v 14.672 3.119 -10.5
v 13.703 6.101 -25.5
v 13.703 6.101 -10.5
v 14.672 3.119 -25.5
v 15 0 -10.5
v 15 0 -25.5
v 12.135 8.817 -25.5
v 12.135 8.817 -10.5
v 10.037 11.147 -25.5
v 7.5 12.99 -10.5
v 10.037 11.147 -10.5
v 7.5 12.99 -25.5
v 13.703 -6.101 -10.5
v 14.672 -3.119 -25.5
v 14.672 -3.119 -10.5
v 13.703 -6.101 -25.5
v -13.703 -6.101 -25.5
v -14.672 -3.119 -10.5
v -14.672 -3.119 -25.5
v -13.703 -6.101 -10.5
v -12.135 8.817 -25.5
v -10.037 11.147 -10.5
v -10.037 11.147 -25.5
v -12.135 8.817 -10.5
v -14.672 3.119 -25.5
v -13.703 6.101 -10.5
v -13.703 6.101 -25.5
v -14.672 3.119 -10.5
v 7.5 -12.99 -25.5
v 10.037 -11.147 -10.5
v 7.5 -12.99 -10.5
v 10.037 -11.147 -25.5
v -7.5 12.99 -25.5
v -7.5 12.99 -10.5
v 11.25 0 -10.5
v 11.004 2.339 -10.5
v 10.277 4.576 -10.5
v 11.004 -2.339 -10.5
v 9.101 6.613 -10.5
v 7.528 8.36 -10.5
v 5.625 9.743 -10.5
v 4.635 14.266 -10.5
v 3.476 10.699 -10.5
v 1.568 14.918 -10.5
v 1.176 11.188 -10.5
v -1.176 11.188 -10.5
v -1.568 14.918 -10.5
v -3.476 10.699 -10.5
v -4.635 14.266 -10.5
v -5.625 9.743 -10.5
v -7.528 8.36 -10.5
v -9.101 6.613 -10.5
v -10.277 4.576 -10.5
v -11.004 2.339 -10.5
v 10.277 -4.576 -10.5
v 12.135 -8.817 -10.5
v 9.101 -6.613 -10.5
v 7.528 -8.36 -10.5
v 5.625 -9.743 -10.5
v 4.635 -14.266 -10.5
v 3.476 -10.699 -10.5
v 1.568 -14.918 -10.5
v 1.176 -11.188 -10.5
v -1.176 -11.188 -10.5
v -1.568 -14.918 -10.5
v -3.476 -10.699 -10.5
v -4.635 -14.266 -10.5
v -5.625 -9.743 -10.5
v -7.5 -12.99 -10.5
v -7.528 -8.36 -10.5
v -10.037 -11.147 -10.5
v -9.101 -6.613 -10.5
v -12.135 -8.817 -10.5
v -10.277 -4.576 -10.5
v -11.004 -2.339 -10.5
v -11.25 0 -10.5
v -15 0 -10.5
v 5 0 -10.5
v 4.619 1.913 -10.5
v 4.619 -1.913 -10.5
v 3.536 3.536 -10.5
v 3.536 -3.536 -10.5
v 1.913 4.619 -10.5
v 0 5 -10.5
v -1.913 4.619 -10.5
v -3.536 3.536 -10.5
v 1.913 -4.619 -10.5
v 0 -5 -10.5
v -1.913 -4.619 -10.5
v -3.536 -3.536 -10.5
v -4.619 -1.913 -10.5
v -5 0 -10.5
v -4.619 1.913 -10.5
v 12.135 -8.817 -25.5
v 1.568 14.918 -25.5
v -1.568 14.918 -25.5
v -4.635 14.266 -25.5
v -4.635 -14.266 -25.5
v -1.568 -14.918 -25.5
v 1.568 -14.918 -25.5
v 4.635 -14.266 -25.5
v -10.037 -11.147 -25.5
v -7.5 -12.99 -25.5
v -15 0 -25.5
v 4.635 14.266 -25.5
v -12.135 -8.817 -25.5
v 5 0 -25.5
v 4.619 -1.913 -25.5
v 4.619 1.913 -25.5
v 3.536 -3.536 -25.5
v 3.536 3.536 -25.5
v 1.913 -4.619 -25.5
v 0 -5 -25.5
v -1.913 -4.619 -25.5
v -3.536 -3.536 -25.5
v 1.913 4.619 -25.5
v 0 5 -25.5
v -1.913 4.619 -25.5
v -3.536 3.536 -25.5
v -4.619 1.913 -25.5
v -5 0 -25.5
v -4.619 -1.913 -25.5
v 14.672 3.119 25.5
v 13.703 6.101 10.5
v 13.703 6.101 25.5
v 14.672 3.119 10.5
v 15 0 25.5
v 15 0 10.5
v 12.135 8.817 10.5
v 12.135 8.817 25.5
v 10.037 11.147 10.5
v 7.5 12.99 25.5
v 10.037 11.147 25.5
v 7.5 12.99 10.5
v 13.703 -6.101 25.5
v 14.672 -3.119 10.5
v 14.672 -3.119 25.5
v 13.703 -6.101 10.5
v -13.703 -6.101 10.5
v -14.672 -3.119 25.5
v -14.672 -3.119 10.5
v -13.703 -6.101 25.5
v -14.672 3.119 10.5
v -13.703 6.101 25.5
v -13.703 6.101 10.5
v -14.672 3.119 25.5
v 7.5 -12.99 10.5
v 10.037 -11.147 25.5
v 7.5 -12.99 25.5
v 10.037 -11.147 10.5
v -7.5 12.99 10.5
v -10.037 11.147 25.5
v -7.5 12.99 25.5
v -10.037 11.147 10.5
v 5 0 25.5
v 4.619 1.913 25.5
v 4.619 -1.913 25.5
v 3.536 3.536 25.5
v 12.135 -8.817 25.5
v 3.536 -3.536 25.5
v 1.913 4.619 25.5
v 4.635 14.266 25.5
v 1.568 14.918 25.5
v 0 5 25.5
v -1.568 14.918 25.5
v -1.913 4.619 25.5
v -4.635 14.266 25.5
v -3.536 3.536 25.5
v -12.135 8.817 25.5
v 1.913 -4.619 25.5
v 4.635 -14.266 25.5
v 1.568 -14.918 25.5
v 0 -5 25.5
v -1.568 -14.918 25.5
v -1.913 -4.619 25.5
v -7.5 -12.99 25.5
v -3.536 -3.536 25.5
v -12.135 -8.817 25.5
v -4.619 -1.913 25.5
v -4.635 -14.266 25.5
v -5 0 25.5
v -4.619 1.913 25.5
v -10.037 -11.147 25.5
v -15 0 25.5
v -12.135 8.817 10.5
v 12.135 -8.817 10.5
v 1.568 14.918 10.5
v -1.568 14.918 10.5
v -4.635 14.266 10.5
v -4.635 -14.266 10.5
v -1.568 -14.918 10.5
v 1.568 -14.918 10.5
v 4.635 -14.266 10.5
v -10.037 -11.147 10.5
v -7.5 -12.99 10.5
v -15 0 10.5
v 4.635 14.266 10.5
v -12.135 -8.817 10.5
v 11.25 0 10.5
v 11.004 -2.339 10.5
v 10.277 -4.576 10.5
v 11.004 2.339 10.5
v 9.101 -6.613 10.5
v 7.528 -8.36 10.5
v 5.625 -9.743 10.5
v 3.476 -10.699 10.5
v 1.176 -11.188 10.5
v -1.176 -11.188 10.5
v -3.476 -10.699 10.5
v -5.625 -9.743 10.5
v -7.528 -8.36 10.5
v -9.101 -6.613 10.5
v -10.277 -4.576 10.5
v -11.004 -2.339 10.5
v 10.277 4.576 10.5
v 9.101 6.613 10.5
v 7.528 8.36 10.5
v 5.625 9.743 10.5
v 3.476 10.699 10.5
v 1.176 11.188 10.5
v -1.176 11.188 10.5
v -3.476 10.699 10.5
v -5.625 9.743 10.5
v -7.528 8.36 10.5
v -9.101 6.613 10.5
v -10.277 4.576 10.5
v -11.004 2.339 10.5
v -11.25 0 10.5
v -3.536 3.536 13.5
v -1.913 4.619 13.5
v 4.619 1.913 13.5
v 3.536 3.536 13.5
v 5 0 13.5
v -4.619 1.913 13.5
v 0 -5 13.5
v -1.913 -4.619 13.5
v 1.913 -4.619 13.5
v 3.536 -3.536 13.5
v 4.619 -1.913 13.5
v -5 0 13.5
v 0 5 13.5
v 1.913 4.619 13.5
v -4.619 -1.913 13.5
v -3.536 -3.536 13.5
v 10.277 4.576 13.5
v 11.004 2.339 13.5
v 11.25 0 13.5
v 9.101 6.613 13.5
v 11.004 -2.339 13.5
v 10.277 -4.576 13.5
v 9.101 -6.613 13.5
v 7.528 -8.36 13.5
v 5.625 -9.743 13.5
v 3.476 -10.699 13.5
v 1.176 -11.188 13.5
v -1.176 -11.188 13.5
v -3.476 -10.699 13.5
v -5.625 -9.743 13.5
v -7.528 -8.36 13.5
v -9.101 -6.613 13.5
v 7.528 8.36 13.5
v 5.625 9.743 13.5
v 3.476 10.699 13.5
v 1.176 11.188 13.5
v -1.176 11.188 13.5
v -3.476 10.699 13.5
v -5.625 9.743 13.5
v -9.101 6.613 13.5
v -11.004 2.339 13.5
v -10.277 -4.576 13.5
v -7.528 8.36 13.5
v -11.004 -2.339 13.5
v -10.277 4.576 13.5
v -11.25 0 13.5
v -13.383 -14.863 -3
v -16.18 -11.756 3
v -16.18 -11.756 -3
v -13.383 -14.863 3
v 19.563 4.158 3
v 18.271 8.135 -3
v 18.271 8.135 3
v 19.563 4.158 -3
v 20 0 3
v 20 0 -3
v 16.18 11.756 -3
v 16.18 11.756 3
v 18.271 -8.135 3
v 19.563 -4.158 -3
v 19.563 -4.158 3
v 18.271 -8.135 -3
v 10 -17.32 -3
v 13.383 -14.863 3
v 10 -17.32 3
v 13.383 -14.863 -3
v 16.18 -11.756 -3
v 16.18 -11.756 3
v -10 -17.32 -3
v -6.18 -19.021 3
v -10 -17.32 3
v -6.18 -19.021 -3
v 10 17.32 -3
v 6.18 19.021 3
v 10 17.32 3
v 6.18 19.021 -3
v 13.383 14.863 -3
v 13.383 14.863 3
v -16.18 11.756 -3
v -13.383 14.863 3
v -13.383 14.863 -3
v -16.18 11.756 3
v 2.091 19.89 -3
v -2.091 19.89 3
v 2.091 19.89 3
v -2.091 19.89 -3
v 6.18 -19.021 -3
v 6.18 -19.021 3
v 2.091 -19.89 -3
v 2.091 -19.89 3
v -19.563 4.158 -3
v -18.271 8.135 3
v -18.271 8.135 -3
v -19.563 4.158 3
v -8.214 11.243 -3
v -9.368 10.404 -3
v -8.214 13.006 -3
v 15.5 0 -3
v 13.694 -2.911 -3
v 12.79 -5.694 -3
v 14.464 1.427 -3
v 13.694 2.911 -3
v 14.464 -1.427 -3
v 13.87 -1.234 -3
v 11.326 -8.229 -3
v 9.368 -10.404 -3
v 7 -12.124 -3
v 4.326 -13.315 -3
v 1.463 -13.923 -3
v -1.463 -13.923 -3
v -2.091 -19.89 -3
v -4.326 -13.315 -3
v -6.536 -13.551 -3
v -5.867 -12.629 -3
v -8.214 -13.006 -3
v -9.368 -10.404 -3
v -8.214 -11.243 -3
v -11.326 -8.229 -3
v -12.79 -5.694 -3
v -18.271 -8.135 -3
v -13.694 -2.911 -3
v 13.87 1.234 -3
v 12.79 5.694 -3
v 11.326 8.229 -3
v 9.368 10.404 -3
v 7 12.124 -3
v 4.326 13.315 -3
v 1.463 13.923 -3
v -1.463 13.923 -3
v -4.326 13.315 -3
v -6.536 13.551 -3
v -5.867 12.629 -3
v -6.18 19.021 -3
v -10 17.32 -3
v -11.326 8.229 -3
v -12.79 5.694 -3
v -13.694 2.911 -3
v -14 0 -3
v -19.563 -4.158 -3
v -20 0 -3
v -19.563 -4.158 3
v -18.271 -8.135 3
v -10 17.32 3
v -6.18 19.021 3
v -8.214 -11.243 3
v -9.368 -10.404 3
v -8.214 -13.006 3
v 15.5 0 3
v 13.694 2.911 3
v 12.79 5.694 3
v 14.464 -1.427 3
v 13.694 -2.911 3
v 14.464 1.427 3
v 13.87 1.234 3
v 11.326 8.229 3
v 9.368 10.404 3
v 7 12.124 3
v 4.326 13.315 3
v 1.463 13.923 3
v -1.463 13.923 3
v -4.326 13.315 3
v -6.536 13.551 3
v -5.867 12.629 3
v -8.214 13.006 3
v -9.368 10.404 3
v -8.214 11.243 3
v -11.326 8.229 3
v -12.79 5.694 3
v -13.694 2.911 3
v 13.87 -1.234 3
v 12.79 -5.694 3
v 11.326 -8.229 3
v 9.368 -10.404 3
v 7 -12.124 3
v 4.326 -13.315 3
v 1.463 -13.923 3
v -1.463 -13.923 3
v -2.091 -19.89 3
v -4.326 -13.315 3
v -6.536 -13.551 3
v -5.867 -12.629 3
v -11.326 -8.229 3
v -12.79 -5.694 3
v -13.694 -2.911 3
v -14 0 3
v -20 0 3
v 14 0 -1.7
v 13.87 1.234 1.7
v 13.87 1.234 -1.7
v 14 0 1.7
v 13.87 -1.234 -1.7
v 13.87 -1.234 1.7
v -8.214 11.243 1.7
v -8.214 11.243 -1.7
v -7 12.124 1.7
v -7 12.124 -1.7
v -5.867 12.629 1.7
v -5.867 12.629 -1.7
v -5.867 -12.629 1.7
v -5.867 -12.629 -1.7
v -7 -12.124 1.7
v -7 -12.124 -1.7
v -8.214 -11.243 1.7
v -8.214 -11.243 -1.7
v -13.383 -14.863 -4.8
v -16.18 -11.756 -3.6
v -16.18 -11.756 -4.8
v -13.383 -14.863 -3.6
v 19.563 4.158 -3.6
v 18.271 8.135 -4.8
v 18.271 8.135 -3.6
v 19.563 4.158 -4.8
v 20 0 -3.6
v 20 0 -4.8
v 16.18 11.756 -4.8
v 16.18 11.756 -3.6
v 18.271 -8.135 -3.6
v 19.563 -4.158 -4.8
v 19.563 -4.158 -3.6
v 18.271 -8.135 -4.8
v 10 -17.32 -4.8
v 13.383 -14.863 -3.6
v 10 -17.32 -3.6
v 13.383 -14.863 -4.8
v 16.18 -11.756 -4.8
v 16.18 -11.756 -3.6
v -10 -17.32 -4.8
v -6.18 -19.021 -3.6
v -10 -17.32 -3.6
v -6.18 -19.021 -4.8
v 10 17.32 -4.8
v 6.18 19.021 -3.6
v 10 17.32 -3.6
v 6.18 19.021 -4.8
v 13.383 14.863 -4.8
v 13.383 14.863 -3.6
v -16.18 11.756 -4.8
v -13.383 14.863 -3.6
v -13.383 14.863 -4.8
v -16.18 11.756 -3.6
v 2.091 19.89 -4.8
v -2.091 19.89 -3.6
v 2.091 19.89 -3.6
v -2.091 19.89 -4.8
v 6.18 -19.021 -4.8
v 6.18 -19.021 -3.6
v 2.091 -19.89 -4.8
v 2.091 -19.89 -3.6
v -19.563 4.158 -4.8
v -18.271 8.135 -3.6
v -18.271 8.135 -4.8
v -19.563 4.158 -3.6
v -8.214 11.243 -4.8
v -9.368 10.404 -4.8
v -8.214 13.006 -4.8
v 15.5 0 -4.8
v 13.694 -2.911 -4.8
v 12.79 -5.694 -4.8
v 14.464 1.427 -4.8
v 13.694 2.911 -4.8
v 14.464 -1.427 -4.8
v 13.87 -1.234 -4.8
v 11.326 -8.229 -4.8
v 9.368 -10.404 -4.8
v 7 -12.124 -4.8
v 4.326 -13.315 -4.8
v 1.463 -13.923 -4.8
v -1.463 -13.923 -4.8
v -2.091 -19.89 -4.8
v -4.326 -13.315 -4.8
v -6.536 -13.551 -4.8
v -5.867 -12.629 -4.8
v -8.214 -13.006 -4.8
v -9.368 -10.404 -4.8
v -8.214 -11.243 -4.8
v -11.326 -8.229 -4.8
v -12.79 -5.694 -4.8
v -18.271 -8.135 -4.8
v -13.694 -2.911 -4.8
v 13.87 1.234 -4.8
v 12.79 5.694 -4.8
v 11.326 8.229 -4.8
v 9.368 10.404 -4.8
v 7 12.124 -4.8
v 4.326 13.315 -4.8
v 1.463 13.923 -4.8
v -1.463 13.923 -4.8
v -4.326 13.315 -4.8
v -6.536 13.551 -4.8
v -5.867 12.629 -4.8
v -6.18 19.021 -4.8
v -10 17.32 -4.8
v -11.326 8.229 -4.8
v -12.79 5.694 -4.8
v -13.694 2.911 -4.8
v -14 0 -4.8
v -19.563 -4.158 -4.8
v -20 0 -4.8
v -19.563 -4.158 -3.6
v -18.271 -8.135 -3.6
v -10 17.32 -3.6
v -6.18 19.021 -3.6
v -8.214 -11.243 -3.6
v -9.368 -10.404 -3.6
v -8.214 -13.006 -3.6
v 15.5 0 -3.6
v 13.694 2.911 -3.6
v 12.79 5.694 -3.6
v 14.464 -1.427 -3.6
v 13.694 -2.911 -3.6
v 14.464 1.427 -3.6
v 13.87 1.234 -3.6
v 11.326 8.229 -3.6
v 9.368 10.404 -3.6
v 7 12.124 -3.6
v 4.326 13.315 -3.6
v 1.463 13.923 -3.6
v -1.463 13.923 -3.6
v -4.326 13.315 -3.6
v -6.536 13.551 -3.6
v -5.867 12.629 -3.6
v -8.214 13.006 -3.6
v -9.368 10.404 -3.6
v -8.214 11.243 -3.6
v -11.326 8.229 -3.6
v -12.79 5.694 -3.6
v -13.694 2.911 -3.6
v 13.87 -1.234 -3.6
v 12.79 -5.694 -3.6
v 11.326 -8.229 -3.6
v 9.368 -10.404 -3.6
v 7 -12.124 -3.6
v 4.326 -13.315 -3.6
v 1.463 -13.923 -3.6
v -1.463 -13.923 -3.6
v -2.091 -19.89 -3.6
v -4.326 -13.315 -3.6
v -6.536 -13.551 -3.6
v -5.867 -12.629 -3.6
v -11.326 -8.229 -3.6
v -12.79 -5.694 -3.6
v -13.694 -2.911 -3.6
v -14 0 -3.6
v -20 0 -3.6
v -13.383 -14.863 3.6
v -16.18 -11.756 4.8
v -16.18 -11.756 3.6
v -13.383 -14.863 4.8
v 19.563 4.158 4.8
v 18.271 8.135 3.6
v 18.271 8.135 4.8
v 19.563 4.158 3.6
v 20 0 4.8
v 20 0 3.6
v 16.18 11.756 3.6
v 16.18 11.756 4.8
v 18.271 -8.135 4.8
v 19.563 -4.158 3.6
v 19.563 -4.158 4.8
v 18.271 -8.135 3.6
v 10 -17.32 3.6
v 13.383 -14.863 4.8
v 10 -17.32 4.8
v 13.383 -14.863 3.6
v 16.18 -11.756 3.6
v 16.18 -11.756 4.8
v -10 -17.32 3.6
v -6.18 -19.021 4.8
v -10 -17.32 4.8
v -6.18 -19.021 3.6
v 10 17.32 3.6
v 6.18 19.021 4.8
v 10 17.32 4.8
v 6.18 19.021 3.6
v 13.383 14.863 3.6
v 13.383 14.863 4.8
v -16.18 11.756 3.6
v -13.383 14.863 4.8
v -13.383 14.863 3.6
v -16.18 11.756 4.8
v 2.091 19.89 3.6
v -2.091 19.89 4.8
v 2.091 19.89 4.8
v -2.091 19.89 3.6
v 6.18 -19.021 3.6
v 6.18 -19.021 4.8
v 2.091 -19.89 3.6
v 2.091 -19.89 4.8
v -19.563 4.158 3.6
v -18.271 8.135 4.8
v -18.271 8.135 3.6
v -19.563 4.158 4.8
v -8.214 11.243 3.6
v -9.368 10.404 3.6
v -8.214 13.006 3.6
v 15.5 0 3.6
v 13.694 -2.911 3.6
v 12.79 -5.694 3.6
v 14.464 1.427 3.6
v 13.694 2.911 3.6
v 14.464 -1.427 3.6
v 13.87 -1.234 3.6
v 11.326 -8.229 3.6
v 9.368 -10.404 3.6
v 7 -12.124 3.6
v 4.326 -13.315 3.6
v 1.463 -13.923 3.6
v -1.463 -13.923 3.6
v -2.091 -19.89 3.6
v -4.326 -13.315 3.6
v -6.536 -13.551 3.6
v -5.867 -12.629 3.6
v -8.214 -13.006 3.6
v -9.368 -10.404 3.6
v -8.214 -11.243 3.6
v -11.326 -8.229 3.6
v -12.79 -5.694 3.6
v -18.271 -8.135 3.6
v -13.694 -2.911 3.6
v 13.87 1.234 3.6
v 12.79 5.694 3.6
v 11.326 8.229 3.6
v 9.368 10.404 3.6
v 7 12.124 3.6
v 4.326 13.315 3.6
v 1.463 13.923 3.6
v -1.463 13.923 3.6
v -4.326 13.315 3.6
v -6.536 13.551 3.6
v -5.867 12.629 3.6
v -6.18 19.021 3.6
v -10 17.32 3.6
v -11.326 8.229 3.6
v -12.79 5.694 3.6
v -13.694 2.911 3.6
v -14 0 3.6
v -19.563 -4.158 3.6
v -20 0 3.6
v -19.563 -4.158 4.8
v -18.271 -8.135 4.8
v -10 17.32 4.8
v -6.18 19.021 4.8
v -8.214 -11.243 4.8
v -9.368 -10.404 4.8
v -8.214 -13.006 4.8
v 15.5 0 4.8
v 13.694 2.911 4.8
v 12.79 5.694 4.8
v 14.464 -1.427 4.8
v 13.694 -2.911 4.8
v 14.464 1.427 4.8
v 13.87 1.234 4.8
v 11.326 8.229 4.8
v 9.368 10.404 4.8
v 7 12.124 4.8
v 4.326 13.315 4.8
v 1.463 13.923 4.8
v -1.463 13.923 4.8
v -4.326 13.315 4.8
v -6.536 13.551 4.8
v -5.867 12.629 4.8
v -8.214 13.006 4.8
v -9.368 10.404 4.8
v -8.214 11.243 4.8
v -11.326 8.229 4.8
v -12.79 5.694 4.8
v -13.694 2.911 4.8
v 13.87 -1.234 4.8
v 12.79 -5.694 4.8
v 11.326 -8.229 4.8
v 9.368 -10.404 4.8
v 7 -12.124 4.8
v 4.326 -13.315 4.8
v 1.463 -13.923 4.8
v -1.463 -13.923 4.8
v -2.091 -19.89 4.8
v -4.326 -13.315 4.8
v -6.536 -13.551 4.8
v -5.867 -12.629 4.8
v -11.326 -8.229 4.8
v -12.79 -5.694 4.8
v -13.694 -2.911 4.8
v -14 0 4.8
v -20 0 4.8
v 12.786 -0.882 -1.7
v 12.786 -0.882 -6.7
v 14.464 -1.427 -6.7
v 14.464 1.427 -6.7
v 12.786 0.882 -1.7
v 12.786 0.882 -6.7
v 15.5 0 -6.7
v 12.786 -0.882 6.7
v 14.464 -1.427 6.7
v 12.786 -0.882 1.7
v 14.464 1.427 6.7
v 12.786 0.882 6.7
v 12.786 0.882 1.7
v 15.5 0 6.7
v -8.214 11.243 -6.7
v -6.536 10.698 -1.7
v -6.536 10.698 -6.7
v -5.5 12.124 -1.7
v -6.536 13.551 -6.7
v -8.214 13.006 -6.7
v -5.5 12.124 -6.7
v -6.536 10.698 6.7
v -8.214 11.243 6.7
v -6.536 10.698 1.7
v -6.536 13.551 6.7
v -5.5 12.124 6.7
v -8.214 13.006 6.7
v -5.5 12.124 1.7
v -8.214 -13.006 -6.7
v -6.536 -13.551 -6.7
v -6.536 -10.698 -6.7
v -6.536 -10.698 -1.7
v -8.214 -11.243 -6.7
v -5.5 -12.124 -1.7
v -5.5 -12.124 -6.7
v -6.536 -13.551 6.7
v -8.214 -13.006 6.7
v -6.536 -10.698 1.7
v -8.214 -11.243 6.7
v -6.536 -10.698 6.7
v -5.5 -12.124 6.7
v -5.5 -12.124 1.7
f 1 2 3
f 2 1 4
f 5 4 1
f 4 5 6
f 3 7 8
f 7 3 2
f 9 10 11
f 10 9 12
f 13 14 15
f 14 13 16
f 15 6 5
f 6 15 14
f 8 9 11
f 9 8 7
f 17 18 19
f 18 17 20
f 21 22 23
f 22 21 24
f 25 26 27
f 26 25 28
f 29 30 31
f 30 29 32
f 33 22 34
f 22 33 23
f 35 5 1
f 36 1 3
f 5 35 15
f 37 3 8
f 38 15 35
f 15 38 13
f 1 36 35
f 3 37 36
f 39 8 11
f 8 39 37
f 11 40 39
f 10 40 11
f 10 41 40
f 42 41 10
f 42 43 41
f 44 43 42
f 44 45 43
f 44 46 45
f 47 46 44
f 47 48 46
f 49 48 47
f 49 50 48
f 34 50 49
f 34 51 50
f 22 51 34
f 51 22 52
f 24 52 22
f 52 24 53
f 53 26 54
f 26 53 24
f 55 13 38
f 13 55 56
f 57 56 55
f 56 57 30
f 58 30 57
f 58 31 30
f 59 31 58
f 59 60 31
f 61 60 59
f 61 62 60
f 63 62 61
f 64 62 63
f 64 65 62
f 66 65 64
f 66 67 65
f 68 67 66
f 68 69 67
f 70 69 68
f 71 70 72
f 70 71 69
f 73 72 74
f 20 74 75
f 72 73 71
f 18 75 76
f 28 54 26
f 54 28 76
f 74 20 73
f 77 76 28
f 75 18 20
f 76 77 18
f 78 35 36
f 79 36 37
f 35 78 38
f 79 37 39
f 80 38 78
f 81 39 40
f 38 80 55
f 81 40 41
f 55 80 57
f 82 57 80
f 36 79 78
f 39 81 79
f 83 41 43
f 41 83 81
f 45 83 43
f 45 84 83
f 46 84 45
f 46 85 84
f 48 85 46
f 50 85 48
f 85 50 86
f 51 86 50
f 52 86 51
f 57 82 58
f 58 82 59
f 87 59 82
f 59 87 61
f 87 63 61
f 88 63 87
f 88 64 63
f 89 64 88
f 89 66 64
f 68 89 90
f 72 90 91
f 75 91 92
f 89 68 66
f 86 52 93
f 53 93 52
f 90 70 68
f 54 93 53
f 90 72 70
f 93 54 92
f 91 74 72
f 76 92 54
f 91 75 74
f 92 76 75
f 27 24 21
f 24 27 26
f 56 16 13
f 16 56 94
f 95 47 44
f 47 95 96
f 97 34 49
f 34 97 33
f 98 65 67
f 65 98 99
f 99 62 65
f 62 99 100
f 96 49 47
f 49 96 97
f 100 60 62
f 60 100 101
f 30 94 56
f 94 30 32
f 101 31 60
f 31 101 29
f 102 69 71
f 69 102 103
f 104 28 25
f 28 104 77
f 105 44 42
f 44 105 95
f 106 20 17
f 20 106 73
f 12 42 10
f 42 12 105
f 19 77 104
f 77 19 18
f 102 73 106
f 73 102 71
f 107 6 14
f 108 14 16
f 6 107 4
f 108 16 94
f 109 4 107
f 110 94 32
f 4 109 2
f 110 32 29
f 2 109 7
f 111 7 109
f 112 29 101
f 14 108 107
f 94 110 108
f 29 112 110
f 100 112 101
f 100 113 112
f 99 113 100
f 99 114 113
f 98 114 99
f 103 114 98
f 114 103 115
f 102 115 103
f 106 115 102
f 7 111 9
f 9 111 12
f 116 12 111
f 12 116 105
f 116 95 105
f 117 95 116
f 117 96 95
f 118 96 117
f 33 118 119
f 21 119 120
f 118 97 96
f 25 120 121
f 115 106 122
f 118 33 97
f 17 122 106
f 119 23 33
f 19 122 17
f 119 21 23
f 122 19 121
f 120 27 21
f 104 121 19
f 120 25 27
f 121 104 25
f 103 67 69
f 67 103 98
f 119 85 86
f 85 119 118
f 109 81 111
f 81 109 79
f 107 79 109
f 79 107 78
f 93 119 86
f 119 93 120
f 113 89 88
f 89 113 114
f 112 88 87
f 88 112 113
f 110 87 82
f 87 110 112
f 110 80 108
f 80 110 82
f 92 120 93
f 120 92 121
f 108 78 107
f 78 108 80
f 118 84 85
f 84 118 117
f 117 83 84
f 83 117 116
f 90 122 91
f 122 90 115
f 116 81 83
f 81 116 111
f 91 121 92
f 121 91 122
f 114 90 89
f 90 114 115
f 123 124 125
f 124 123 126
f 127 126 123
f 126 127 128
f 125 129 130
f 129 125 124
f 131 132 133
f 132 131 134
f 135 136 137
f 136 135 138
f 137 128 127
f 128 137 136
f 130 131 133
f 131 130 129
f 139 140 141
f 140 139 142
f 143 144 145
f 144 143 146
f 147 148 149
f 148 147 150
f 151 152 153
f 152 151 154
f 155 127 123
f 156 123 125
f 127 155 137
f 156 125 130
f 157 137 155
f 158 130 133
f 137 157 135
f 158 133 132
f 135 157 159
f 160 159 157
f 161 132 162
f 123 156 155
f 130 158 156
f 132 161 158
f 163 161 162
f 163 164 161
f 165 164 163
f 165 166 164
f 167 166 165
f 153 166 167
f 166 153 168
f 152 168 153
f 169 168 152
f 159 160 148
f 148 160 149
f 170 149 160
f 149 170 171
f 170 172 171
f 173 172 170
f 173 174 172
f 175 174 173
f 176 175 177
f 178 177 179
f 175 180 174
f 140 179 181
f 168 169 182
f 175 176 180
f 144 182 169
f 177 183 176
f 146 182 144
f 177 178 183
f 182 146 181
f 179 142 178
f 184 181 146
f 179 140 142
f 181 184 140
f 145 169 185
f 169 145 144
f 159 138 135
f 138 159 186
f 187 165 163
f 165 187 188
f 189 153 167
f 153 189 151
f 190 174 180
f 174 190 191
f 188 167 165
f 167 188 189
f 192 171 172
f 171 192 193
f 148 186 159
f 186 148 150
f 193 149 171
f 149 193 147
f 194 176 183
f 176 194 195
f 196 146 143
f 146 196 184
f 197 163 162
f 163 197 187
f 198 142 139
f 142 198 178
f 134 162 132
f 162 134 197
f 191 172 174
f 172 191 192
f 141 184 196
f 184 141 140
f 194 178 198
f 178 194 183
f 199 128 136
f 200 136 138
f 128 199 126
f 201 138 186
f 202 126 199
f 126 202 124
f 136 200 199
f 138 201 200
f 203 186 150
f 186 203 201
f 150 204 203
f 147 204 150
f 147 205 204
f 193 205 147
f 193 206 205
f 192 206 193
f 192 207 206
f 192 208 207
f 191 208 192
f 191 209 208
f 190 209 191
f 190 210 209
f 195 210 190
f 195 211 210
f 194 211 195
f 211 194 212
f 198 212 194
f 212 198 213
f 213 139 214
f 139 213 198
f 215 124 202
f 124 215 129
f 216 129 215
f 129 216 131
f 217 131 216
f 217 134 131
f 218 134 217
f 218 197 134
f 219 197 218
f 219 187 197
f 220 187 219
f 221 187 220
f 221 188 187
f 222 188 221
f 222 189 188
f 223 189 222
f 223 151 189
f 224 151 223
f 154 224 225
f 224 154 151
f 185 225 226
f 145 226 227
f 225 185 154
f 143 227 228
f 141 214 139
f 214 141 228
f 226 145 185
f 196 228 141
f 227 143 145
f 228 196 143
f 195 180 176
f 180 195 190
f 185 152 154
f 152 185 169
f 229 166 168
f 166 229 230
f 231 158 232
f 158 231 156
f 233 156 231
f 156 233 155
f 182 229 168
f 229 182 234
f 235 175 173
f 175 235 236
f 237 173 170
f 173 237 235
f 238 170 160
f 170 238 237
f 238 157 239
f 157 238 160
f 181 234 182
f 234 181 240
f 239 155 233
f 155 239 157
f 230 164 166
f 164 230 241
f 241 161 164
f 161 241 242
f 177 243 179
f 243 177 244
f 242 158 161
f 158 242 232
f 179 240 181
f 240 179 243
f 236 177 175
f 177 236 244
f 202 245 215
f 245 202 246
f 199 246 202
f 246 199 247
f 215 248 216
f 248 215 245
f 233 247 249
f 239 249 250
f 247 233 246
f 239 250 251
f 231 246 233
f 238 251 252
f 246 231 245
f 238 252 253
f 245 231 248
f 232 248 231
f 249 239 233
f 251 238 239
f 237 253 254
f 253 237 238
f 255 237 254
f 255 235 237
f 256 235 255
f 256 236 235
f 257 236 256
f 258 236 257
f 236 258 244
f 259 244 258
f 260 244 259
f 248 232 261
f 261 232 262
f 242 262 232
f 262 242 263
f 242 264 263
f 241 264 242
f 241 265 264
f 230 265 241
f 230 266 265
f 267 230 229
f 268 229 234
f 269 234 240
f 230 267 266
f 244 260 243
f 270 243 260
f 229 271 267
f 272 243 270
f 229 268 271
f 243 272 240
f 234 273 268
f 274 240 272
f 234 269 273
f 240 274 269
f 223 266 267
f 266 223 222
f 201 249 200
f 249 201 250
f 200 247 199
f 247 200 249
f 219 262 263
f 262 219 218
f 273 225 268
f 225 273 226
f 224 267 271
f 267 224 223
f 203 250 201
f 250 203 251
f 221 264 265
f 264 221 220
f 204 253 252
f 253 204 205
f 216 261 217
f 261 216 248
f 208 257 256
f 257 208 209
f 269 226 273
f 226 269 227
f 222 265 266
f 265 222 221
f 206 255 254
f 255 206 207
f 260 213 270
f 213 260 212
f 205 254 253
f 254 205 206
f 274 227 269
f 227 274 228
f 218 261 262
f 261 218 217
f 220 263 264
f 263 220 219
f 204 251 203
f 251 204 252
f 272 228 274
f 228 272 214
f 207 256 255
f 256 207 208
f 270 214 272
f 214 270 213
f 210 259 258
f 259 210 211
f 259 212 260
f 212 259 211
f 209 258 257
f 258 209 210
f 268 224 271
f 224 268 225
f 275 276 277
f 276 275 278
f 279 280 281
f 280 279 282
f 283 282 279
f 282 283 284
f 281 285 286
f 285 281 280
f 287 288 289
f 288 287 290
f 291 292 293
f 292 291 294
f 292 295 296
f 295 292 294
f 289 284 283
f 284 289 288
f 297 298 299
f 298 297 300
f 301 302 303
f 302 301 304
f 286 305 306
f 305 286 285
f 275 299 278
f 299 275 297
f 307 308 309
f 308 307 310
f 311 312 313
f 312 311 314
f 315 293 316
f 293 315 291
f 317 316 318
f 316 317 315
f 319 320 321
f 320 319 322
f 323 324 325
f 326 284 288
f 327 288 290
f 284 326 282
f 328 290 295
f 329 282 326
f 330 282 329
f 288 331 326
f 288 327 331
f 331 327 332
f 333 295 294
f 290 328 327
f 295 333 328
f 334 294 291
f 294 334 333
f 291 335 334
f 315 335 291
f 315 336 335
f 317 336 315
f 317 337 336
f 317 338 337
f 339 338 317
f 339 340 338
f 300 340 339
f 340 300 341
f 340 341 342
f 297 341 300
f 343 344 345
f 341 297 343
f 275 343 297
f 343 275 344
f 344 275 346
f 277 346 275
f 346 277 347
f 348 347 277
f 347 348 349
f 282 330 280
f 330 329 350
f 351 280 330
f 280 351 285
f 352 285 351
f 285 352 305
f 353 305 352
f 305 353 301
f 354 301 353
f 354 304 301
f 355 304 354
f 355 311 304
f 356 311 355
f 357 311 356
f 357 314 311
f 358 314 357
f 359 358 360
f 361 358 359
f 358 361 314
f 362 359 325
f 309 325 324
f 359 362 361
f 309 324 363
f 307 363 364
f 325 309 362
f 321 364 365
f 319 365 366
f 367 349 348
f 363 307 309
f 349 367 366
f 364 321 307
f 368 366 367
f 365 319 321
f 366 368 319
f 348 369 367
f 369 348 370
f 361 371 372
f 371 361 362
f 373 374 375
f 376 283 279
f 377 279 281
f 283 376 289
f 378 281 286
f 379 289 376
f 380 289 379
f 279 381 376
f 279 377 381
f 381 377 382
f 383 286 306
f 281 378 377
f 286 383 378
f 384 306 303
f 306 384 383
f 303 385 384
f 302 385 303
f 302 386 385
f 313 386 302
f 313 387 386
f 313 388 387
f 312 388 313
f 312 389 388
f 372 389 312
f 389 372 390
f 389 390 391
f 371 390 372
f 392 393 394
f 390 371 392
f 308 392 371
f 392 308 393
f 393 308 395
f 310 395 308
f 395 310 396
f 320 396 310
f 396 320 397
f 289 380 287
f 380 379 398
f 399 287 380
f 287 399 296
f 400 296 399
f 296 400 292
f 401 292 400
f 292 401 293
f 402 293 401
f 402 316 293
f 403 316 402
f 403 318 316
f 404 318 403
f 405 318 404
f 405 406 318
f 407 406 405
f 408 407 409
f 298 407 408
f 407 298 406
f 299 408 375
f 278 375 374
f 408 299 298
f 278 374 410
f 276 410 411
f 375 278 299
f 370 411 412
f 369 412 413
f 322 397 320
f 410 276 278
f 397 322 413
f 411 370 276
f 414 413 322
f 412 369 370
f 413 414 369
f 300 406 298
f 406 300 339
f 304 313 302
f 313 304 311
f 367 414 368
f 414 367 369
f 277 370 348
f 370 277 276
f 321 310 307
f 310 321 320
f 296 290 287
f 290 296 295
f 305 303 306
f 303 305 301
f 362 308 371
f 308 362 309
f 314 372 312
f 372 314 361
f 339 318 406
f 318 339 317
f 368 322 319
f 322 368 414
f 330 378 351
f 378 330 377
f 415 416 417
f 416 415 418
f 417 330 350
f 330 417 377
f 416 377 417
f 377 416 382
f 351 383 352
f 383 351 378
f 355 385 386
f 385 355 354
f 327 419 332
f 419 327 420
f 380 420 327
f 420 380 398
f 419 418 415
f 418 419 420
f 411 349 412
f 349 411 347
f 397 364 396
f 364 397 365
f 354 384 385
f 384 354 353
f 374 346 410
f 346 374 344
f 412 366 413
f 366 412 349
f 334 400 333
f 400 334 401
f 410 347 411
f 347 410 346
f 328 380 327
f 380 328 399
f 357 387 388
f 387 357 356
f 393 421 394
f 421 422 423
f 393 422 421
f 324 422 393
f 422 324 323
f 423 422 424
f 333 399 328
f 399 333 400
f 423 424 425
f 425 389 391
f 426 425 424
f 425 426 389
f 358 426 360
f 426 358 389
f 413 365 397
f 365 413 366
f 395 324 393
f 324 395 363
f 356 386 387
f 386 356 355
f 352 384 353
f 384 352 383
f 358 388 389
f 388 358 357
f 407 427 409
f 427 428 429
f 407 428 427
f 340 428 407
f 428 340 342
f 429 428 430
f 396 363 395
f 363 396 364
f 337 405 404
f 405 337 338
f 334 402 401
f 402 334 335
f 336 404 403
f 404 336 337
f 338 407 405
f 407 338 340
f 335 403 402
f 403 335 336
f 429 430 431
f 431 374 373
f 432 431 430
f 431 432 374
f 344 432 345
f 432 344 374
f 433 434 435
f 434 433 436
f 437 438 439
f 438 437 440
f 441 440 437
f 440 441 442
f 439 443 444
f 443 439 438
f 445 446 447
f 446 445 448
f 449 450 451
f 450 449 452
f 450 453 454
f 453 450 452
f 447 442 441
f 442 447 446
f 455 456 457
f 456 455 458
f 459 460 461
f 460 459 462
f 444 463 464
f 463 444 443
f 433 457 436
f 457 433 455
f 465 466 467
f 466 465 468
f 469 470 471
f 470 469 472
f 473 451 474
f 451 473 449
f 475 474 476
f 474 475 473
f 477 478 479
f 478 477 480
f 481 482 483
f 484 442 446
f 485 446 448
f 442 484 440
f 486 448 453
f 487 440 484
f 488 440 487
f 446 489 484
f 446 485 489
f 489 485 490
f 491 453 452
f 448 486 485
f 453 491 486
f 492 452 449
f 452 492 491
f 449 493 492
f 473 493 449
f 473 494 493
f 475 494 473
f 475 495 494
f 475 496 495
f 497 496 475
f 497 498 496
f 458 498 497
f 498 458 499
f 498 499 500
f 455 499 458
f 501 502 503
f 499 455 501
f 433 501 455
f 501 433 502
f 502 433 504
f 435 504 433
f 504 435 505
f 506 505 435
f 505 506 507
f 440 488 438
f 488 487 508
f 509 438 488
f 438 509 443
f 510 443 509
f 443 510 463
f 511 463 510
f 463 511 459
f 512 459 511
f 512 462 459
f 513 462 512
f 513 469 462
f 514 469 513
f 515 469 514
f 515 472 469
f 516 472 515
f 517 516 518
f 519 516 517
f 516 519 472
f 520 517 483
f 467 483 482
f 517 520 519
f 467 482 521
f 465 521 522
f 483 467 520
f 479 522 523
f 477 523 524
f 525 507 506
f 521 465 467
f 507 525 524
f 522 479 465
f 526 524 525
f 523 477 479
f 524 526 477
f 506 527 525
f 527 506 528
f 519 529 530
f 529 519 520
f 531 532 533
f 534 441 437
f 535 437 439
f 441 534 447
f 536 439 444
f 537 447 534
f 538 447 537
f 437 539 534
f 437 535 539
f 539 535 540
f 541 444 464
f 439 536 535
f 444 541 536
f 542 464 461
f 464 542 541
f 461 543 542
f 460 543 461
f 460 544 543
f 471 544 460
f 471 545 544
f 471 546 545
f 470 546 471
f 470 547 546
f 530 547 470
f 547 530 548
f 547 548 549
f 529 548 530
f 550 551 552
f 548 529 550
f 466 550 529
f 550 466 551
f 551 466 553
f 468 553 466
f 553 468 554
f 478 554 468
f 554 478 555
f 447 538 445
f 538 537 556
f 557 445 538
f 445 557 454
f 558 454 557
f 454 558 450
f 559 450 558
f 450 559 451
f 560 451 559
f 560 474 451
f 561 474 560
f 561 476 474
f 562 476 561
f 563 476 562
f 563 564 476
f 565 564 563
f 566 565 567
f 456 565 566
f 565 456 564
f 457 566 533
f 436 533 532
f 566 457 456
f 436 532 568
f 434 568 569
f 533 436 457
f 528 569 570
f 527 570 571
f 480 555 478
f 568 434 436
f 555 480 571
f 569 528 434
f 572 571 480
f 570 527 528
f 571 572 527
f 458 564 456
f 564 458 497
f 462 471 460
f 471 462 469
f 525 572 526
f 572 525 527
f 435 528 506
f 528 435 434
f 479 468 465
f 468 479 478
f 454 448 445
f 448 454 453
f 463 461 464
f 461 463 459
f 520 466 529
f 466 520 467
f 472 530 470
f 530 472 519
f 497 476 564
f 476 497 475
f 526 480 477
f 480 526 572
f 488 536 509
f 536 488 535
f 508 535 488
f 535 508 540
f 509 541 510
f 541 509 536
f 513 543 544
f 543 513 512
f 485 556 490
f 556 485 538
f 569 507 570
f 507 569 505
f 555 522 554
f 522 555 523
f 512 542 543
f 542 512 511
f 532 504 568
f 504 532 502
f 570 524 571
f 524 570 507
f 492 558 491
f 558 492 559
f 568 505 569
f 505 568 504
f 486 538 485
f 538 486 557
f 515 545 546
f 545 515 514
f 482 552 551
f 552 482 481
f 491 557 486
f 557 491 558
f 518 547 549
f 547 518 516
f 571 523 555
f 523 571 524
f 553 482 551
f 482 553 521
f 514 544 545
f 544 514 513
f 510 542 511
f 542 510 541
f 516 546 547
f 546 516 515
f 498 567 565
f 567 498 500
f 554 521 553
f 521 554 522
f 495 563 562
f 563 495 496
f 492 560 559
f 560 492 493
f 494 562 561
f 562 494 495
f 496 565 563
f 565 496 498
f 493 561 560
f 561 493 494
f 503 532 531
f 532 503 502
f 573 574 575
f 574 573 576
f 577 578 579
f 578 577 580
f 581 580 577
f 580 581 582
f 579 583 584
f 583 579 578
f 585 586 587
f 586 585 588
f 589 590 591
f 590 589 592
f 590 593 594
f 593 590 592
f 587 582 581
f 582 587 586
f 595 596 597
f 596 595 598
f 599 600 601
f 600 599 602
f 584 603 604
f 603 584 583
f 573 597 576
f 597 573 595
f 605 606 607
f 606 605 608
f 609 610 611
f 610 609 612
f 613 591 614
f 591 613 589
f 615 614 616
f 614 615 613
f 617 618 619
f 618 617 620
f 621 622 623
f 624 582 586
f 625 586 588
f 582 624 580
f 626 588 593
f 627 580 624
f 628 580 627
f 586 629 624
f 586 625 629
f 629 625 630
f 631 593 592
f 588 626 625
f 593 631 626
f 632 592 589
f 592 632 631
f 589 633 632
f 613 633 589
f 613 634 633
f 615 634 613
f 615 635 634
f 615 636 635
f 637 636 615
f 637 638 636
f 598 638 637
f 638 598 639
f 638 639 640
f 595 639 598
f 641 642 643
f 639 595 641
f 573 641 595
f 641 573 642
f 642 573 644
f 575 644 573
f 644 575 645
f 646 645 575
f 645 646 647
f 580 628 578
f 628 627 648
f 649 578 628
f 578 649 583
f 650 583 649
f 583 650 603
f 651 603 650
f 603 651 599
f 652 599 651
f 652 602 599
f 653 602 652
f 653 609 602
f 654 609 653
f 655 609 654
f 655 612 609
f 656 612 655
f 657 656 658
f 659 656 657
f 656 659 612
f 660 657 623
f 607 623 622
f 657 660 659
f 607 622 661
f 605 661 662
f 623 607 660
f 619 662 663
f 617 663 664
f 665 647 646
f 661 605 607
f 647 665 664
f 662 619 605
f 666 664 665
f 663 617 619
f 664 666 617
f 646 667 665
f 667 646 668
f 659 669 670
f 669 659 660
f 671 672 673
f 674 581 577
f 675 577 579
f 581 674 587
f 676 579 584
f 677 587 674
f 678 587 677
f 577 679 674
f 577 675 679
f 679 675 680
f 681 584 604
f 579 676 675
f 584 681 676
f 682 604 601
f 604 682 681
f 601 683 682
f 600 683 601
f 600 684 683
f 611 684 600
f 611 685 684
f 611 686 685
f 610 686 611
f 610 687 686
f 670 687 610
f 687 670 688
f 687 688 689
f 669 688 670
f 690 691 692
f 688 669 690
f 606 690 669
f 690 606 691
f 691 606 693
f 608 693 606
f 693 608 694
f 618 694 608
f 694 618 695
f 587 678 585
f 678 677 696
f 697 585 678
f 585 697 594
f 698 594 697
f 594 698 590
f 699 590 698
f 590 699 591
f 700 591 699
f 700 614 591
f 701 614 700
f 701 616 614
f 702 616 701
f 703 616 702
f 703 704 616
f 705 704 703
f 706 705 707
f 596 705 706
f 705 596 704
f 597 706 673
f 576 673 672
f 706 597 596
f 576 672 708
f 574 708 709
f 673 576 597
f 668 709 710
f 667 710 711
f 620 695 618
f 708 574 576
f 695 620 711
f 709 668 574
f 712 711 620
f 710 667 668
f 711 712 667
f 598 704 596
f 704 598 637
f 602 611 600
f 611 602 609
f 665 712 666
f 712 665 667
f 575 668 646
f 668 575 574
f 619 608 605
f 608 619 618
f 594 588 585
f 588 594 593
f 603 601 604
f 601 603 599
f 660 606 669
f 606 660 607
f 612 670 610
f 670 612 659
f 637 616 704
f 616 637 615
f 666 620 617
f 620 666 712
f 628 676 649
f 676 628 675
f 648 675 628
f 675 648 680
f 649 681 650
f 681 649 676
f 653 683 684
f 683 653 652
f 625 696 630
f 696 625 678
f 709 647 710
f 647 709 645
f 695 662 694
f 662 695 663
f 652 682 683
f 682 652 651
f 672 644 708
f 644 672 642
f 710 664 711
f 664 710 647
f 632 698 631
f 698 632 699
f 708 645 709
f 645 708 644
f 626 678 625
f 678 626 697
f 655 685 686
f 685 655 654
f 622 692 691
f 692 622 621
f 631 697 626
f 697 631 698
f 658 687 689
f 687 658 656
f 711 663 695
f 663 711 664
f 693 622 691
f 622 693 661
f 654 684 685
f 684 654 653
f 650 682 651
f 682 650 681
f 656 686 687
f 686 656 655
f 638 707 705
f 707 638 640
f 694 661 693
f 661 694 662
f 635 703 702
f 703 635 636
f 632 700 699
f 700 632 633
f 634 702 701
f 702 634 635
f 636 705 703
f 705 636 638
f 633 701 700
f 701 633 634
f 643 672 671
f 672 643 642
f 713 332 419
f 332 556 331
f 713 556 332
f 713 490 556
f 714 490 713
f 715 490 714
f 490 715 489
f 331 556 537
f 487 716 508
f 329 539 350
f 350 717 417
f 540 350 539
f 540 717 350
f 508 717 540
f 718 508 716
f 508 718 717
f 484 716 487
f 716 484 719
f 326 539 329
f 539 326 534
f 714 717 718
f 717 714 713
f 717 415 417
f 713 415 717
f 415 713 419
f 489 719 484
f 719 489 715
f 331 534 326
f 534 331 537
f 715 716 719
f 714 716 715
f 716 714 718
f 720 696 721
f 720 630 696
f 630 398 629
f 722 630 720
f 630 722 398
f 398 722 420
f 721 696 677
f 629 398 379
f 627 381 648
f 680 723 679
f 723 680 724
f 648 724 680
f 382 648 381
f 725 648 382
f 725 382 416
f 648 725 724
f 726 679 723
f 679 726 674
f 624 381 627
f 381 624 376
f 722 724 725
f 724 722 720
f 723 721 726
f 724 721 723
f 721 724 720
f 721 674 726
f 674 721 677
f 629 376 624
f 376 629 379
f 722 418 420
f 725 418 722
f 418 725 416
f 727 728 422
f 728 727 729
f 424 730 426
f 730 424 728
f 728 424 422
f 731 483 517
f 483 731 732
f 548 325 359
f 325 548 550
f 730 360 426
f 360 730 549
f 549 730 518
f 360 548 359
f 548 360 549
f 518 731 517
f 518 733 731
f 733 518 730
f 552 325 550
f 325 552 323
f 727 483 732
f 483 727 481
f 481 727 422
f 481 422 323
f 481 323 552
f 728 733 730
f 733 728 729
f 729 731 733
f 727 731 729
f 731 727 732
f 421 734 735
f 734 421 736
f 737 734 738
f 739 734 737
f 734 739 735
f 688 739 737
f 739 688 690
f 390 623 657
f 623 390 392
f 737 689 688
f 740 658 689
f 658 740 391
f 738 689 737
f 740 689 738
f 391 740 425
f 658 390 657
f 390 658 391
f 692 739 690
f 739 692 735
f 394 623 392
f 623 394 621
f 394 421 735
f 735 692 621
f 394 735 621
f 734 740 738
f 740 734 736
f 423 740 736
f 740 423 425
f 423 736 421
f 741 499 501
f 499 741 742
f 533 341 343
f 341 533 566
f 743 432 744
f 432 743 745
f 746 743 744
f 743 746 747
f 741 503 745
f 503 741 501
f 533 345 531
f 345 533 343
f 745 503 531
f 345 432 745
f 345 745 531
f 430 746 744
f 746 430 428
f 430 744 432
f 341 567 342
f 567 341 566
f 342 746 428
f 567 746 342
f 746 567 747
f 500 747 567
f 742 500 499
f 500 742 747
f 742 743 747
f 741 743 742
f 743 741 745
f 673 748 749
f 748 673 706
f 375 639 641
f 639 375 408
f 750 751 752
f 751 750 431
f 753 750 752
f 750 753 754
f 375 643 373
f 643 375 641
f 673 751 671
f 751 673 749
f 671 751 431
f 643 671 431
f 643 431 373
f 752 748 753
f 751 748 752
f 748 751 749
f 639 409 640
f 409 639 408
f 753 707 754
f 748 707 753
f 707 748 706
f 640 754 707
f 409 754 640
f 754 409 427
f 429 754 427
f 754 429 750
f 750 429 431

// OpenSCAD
// Parameters
hub_diameter = 30;
hub_length = 15; // Shortened to match the original model
shaft_hole_diameter = 10;
flexible_element_outer_diameter = 40;
flexible_element_inner_diameter = 28;
flexible_element_thickness = 6; // Reduced thickness to better integrate with hubs
retaining_ring_thickness = 1.2; // Reduced thickness to make it more flush
screw_diameter = 3;
screw_length = 5; // Adjusted to ensure proper fastening
num_screws = 3;
screw_spacing_radius = 14;

// Input Shaft Hub
module input_shaft_hub() {
    difference() {
        cylinder(d=hub_diameter, h=hub_length, center=true);
        cylinder(d=shaft_hole_diameter, h=hub_length + 2, center=true);
        translate([0, 0, hub_length / 2])
            cylinder(d=hub_diameter * 0.75, h=3, center=false); // Adjusted transition for better proportion
    }
}

// Output Shaft Hub
module output_shaft_hub() {
    difference() {
        cylinder(d=hub_diameter, h=hub_length, center=true);
        cylinder(d=shaft_hole_diameter, h=hub_length + 2, center=true);
        translate([0, 0, -hub_length / 2])
            cylinder(d=hub_diameter * 0.75, h=3, center=false); // Adjusted transition for better proportion
    }
}

// Flexible Element
module flexible_element() {
    difference() {
        translate([0, 0, -flexible_element_thickness / 2])
            cylinder(d=flexible_element_outer_diameter, h=flexible_element_thickness, center=false);
        translate([0, 0, -flexible_element_thickness / 2 - 1])
            cylinder(d=flexible_element_inner_diameter, h=flexible_element_thickness + 2, center=false);
    }
}

// Retaining Ring
module retaining_ring() {
    difference() {
        cylinder(d=flexible_element_outer_diameter, h=retaining_ring_thickness, center=true);
        cylinder(d=flexible_element_inner_diameter, h=retaining_ring_thickness + 2, center=true);
    }
}

// Fastening Screws
module fastening_screw() {
    translate([0, 0, -screw_length / 2])
        cylinder(d=screw_diameter, h=screw_length, center=false);
}

// Assembly
module coupling_assembly() {
    translate([0, 0, -hub_length - flexible_element_thickness / 2])
        input_shaft_hub();
    
    translate([0, 0, hub_length + flexible_element_thickness / 2])
        output_shaft_hub();
    
    translate([0, 0, 0])
        flexible_element();
    
    translate([0, 0, -flexible_element_thickness / 2 - retaining_ring_thickness])
        retaining_ring();
    
    translate([0, 0, flexible_element_thickness / 2 + retaining_ring_thickness])
        retaining_ring();
    
    for (i = [0:num_screws-1]) {
        angle = i * 360 / num_screws;
        translate([screw_spacing_radius * cos(angle), screw_spacing_radius * sin(angle), -flexible_element_thickness / 2 - retaining_ring_thickness])
            fastening_screw();
        
        translate([screw_spacing_radius * cos(angle), screw_spacing_radius * sin(angle), flexible_element_thickness / 2 + retaining_ring_thickness])
            fastening_screw();
    }
}

// Render the coupling assembly
coupling_assembly();
